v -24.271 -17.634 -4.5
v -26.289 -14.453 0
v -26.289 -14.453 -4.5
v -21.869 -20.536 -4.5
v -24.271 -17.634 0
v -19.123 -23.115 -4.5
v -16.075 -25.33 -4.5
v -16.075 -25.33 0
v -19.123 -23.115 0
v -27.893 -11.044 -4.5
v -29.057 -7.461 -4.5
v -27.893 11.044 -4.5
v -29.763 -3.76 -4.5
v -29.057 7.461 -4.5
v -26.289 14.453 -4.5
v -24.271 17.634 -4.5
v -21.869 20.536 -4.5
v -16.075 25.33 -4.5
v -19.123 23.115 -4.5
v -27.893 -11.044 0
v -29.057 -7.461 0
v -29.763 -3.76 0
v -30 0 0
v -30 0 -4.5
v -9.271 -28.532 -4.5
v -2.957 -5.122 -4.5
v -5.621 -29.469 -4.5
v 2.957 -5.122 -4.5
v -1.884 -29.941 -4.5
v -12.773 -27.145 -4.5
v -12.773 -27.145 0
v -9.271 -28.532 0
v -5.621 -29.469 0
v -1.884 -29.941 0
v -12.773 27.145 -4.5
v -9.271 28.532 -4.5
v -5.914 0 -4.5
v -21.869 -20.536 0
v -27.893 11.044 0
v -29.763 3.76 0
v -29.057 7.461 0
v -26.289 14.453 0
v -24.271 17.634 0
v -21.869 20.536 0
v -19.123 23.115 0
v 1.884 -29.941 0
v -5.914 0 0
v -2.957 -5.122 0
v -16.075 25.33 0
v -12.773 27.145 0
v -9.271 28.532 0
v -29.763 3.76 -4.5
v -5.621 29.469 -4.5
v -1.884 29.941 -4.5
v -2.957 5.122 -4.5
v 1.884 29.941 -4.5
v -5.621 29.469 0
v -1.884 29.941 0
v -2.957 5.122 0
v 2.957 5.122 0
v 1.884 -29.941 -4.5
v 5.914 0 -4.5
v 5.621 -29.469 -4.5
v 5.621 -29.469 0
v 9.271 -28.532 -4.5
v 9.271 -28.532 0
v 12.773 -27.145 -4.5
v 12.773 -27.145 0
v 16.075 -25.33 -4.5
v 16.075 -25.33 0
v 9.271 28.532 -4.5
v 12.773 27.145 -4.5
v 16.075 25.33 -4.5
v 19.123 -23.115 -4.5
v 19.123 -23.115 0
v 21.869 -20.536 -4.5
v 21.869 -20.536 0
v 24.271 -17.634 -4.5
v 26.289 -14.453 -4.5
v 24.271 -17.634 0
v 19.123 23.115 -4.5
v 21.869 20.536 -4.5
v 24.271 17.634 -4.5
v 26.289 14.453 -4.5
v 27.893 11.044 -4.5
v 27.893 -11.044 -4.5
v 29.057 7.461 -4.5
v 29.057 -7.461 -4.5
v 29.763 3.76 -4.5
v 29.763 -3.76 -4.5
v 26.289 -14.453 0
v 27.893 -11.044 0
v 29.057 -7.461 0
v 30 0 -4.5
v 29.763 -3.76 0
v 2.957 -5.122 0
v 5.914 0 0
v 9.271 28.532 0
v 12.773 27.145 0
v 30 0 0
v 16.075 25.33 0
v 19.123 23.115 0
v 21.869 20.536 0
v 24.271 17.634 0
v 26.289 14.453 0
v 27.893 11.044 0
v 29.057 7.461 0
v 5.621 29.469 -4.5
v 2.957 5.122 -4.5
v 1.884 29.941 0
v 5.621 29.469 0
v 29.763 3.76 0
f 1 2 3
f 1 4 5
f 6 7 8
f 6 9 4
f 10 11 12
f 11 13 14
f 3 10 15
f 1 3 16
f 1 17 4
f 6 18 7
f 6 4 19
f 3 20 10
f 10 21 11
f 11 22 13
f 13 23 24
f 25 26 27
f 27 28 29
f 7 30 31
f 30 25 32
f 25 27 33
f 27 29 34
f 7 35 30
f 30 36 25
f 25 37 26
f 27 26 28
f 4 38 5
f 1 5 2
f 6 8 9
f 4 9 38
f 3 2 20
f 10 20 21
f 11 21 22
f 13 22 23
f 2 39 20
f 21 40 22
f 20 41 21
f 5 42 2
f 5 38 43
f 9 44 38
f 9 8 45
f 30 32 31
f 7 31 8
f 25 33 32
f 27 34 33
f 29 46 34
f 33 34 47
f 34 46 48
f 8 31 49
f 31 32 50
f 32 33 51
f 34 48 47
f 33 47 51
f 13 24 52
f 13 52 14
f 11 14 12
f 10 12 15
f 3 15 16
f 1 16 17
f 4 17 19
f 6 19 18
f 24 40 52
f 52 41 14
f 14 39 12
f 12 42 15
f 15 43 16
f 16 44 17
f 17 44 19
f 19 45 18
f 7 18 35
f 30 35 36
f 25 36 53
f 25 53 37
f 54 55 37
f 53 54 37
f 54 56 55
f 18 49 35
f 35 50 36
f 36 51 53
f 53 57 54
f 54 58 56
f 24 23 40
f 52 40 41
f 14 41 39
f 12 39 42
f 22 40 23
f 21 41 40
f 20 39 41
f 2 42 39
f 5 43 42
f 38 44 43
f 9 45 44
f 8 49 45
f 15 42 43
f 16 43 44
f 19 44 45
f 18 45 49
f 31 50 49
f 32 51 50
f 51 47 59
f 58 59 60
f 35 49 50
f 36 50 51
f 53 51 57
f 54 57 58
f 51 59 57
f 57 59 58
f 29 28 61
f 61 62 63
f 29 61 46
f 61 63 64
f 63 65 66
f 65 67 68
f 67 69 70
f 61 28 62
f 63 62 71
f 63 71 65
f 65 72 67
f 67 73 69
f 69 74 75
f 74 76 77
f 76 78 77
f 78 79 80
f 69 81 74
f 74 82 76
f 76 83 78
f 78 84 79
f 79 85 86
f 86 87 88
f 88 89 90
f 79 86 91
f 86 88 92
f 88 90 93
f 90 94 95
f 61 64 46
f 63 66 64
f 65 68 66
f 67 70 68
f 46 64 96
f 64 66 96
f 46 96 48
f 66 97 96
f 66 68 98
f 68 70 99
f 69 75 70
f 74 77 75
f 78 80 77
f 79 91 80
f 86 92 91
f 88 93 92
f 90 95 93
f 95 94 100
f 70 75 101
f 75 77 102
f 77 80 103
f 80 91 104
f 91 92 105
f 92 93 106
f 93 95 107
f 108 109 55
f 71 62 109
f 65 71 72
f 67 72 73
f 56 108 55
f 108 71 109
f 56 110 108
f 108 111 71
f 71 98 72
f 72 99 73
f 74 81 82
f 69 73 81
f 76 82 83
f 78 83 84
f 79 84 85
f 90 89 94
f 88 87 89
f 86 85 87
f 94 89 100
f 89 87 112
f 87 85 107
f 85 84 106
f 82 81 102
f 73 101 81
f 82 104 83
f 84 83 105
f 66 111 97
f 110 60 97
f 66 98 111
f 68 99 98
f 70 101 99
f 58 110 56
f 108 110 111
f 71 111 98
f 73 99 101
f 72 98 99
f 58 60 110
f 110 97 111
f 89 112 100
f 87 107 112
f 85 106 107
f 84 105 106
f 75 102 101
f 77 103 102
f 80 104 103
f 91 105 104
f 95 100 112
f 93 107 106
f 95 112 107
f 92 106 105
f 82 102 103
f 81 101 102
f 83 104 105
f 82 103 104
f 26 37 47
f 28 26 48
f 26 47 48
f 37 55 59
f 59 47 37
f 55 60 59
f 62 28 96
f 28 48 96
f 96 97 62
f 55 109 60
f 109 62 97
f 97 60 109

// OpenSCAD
$fn = 50;

difference() {
	union() {
		translate(v = [0, 0, -4.5]) {
			cylinder(h = 4.5, r = 30.0);
		}
		#translate(v = [0, 0, -6.0]) {
			cylinder(h = 6, r = 2.875);
		}
	}
	union() {
		translate(v = [0, 0, 0]) {
			rotate(a = [0, 0, 0]) {
				difference() {
					union() {
						translate(v = [0, 0, -5]) {
							linear_extrude(height = 5) {
								polygon(points = [[5.914249999999999, 0.0], [2.957125, 5.1218907443321156], [-2.9571249999999982, 5.1218907443321156], [-5.914249999999999, 7.242867331857232e-16], [-2.9571250000000022, -5.121890744332115], [2.9571249999999956, -5.121890744332118]]);
							}
						}
					}
					union();
				}
			}
		}
		#translate(v = [0, 0, -100.0]) {
			cylinder(h = 200, r = 3.25);
		}
	}
}
